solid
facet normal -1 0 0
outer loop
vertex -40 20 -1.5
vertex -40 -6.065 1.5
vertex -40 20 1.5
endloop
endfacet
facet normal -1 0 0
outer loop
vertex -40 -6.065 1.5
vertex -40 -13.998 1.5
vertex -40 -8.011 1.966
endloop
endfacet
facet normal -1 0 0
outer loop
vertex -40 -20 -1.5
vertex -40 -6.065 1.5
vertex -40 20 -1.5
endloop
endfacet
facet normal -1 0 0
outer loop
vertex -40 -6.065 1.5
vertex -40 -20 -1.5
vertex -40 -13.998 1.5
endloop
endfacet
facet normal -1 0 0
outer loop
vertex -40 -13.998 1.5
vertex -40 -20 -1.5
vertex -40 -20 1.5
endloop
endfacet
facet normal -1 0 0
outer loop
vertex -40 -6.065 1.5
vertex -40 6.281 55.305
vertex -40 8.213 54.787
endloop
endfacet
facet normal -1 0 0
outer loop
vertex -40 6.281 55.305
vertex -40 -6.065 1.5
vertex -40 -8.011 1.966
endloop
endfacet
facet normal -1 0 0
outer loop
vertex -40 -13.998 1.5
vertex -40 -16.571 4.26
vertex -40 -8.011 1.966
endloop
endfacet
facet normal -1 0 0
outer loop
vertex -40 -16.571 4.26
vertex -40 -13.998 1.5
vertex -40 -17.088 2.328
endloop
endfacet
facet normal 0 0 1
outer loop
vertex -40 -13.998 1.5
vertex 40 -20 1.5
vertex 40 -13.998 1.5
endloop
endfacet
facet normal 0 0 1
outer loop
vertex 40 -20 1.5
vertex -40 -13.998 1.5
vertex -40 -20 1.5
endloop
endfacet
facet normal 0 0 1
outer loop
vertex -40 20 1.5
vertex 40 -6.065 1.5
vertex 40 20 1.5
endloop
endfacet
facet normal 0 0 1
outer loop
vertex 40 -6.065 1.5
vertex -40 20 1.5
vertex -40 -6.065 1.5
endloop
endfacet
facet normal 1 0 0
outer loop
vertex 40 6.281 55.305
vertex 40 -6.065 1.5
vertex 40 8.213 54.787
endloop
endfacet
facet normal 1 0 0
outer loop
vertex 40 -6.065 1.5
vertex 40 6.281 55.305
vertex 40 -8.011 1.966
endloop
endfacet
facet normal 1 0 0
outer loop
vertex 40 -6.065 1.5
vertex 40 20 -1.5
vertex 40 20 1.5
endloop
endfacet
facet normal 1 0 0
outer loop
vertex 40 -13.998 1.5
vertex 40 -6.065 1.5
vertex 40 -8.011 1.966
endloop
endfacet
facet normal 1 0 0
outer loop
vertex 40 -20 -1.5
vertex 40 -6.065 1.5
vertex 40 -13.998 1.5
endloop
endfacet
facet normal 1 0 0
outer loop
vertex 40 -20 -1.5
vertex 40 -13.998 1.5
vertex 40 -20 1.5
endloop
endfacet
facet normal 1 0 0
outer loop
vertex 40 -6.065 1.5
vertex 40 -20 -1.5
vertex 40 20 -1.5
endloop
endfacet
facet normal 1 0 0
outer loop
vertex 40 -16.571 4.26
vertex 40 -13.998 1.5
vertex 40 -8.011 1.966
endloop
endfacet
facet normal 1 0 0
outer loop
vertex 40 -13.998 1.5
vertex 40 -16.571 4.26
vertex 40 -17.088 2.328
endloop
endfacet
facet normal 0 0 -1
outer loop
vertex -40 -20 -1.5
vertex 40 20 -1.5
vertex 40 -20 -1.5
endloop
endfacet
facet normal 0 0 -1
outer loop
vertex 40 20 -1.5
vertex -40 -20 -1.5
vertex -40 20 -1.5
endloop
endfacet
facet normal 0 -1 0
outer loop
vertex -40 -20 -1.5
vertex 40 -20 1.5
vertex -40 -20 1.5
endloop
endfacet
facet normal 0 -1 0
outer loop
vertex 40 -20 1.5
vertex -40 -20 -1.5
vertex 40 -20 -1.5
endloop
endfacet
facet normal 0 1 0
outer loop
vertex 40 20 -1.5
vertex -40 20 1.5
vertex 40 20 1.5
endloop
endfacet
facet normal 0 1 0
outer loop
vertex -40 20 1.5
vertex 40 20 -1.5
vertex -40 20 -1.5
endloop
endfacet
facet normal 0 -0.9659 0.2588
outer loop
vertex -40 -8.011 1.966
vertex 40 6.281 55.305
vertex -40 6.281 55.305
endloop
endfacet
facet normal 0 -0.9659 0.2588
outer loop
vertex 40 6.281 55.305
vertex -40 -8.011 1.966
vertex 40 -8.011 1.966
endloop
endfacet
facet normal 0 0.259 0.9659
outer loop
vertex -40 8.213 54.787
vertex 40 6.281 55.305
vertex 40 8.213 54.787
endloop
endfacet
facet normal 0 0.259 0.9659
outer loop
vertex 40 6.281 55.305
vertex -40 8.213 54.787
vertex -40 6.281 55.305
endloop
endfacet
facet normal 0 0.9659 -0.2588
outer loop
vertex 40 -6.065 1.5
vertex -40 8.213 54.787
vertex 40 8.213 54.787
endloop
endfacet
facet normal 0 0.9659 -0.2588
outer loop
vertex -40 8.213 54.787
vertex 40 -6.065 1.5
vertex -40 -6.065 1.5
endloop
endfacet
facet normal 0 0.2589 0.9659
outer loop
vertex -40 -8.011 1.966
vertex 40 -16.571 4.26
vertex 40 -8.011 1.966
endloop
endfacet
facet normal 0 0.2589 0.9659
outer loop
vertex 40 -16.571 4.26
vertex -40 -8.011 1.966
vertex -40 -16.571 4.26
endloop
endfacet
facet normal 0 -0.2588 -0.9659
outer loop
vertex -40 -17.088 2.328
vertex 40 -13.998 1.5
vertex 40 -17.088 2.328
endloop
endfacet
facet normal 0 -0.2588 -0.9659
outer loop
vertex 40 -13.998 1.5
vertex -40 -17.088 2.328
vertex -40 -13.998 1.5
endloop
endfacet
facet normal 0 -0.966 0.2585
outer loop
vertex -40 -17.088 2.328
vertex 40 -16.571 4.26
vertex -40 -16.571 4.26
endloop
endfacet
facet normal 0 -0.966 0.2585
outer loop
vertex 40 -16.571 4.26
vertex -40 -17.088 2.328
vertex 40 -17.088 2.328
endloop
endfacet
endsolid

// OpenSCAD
//2024 Oxford Aerospace and Rocketry Society
//Simple stand for displaying a tracker

cube([80,40,3],center = true); //Base

translate([0,0,56/2]) //Back stand
rotate([75,0,0])
cube([80,56,2],center = true);

translate([0,-12,2]) //Front rest
rotate([-15,0,0])
cube([80,10,2],center = true);
